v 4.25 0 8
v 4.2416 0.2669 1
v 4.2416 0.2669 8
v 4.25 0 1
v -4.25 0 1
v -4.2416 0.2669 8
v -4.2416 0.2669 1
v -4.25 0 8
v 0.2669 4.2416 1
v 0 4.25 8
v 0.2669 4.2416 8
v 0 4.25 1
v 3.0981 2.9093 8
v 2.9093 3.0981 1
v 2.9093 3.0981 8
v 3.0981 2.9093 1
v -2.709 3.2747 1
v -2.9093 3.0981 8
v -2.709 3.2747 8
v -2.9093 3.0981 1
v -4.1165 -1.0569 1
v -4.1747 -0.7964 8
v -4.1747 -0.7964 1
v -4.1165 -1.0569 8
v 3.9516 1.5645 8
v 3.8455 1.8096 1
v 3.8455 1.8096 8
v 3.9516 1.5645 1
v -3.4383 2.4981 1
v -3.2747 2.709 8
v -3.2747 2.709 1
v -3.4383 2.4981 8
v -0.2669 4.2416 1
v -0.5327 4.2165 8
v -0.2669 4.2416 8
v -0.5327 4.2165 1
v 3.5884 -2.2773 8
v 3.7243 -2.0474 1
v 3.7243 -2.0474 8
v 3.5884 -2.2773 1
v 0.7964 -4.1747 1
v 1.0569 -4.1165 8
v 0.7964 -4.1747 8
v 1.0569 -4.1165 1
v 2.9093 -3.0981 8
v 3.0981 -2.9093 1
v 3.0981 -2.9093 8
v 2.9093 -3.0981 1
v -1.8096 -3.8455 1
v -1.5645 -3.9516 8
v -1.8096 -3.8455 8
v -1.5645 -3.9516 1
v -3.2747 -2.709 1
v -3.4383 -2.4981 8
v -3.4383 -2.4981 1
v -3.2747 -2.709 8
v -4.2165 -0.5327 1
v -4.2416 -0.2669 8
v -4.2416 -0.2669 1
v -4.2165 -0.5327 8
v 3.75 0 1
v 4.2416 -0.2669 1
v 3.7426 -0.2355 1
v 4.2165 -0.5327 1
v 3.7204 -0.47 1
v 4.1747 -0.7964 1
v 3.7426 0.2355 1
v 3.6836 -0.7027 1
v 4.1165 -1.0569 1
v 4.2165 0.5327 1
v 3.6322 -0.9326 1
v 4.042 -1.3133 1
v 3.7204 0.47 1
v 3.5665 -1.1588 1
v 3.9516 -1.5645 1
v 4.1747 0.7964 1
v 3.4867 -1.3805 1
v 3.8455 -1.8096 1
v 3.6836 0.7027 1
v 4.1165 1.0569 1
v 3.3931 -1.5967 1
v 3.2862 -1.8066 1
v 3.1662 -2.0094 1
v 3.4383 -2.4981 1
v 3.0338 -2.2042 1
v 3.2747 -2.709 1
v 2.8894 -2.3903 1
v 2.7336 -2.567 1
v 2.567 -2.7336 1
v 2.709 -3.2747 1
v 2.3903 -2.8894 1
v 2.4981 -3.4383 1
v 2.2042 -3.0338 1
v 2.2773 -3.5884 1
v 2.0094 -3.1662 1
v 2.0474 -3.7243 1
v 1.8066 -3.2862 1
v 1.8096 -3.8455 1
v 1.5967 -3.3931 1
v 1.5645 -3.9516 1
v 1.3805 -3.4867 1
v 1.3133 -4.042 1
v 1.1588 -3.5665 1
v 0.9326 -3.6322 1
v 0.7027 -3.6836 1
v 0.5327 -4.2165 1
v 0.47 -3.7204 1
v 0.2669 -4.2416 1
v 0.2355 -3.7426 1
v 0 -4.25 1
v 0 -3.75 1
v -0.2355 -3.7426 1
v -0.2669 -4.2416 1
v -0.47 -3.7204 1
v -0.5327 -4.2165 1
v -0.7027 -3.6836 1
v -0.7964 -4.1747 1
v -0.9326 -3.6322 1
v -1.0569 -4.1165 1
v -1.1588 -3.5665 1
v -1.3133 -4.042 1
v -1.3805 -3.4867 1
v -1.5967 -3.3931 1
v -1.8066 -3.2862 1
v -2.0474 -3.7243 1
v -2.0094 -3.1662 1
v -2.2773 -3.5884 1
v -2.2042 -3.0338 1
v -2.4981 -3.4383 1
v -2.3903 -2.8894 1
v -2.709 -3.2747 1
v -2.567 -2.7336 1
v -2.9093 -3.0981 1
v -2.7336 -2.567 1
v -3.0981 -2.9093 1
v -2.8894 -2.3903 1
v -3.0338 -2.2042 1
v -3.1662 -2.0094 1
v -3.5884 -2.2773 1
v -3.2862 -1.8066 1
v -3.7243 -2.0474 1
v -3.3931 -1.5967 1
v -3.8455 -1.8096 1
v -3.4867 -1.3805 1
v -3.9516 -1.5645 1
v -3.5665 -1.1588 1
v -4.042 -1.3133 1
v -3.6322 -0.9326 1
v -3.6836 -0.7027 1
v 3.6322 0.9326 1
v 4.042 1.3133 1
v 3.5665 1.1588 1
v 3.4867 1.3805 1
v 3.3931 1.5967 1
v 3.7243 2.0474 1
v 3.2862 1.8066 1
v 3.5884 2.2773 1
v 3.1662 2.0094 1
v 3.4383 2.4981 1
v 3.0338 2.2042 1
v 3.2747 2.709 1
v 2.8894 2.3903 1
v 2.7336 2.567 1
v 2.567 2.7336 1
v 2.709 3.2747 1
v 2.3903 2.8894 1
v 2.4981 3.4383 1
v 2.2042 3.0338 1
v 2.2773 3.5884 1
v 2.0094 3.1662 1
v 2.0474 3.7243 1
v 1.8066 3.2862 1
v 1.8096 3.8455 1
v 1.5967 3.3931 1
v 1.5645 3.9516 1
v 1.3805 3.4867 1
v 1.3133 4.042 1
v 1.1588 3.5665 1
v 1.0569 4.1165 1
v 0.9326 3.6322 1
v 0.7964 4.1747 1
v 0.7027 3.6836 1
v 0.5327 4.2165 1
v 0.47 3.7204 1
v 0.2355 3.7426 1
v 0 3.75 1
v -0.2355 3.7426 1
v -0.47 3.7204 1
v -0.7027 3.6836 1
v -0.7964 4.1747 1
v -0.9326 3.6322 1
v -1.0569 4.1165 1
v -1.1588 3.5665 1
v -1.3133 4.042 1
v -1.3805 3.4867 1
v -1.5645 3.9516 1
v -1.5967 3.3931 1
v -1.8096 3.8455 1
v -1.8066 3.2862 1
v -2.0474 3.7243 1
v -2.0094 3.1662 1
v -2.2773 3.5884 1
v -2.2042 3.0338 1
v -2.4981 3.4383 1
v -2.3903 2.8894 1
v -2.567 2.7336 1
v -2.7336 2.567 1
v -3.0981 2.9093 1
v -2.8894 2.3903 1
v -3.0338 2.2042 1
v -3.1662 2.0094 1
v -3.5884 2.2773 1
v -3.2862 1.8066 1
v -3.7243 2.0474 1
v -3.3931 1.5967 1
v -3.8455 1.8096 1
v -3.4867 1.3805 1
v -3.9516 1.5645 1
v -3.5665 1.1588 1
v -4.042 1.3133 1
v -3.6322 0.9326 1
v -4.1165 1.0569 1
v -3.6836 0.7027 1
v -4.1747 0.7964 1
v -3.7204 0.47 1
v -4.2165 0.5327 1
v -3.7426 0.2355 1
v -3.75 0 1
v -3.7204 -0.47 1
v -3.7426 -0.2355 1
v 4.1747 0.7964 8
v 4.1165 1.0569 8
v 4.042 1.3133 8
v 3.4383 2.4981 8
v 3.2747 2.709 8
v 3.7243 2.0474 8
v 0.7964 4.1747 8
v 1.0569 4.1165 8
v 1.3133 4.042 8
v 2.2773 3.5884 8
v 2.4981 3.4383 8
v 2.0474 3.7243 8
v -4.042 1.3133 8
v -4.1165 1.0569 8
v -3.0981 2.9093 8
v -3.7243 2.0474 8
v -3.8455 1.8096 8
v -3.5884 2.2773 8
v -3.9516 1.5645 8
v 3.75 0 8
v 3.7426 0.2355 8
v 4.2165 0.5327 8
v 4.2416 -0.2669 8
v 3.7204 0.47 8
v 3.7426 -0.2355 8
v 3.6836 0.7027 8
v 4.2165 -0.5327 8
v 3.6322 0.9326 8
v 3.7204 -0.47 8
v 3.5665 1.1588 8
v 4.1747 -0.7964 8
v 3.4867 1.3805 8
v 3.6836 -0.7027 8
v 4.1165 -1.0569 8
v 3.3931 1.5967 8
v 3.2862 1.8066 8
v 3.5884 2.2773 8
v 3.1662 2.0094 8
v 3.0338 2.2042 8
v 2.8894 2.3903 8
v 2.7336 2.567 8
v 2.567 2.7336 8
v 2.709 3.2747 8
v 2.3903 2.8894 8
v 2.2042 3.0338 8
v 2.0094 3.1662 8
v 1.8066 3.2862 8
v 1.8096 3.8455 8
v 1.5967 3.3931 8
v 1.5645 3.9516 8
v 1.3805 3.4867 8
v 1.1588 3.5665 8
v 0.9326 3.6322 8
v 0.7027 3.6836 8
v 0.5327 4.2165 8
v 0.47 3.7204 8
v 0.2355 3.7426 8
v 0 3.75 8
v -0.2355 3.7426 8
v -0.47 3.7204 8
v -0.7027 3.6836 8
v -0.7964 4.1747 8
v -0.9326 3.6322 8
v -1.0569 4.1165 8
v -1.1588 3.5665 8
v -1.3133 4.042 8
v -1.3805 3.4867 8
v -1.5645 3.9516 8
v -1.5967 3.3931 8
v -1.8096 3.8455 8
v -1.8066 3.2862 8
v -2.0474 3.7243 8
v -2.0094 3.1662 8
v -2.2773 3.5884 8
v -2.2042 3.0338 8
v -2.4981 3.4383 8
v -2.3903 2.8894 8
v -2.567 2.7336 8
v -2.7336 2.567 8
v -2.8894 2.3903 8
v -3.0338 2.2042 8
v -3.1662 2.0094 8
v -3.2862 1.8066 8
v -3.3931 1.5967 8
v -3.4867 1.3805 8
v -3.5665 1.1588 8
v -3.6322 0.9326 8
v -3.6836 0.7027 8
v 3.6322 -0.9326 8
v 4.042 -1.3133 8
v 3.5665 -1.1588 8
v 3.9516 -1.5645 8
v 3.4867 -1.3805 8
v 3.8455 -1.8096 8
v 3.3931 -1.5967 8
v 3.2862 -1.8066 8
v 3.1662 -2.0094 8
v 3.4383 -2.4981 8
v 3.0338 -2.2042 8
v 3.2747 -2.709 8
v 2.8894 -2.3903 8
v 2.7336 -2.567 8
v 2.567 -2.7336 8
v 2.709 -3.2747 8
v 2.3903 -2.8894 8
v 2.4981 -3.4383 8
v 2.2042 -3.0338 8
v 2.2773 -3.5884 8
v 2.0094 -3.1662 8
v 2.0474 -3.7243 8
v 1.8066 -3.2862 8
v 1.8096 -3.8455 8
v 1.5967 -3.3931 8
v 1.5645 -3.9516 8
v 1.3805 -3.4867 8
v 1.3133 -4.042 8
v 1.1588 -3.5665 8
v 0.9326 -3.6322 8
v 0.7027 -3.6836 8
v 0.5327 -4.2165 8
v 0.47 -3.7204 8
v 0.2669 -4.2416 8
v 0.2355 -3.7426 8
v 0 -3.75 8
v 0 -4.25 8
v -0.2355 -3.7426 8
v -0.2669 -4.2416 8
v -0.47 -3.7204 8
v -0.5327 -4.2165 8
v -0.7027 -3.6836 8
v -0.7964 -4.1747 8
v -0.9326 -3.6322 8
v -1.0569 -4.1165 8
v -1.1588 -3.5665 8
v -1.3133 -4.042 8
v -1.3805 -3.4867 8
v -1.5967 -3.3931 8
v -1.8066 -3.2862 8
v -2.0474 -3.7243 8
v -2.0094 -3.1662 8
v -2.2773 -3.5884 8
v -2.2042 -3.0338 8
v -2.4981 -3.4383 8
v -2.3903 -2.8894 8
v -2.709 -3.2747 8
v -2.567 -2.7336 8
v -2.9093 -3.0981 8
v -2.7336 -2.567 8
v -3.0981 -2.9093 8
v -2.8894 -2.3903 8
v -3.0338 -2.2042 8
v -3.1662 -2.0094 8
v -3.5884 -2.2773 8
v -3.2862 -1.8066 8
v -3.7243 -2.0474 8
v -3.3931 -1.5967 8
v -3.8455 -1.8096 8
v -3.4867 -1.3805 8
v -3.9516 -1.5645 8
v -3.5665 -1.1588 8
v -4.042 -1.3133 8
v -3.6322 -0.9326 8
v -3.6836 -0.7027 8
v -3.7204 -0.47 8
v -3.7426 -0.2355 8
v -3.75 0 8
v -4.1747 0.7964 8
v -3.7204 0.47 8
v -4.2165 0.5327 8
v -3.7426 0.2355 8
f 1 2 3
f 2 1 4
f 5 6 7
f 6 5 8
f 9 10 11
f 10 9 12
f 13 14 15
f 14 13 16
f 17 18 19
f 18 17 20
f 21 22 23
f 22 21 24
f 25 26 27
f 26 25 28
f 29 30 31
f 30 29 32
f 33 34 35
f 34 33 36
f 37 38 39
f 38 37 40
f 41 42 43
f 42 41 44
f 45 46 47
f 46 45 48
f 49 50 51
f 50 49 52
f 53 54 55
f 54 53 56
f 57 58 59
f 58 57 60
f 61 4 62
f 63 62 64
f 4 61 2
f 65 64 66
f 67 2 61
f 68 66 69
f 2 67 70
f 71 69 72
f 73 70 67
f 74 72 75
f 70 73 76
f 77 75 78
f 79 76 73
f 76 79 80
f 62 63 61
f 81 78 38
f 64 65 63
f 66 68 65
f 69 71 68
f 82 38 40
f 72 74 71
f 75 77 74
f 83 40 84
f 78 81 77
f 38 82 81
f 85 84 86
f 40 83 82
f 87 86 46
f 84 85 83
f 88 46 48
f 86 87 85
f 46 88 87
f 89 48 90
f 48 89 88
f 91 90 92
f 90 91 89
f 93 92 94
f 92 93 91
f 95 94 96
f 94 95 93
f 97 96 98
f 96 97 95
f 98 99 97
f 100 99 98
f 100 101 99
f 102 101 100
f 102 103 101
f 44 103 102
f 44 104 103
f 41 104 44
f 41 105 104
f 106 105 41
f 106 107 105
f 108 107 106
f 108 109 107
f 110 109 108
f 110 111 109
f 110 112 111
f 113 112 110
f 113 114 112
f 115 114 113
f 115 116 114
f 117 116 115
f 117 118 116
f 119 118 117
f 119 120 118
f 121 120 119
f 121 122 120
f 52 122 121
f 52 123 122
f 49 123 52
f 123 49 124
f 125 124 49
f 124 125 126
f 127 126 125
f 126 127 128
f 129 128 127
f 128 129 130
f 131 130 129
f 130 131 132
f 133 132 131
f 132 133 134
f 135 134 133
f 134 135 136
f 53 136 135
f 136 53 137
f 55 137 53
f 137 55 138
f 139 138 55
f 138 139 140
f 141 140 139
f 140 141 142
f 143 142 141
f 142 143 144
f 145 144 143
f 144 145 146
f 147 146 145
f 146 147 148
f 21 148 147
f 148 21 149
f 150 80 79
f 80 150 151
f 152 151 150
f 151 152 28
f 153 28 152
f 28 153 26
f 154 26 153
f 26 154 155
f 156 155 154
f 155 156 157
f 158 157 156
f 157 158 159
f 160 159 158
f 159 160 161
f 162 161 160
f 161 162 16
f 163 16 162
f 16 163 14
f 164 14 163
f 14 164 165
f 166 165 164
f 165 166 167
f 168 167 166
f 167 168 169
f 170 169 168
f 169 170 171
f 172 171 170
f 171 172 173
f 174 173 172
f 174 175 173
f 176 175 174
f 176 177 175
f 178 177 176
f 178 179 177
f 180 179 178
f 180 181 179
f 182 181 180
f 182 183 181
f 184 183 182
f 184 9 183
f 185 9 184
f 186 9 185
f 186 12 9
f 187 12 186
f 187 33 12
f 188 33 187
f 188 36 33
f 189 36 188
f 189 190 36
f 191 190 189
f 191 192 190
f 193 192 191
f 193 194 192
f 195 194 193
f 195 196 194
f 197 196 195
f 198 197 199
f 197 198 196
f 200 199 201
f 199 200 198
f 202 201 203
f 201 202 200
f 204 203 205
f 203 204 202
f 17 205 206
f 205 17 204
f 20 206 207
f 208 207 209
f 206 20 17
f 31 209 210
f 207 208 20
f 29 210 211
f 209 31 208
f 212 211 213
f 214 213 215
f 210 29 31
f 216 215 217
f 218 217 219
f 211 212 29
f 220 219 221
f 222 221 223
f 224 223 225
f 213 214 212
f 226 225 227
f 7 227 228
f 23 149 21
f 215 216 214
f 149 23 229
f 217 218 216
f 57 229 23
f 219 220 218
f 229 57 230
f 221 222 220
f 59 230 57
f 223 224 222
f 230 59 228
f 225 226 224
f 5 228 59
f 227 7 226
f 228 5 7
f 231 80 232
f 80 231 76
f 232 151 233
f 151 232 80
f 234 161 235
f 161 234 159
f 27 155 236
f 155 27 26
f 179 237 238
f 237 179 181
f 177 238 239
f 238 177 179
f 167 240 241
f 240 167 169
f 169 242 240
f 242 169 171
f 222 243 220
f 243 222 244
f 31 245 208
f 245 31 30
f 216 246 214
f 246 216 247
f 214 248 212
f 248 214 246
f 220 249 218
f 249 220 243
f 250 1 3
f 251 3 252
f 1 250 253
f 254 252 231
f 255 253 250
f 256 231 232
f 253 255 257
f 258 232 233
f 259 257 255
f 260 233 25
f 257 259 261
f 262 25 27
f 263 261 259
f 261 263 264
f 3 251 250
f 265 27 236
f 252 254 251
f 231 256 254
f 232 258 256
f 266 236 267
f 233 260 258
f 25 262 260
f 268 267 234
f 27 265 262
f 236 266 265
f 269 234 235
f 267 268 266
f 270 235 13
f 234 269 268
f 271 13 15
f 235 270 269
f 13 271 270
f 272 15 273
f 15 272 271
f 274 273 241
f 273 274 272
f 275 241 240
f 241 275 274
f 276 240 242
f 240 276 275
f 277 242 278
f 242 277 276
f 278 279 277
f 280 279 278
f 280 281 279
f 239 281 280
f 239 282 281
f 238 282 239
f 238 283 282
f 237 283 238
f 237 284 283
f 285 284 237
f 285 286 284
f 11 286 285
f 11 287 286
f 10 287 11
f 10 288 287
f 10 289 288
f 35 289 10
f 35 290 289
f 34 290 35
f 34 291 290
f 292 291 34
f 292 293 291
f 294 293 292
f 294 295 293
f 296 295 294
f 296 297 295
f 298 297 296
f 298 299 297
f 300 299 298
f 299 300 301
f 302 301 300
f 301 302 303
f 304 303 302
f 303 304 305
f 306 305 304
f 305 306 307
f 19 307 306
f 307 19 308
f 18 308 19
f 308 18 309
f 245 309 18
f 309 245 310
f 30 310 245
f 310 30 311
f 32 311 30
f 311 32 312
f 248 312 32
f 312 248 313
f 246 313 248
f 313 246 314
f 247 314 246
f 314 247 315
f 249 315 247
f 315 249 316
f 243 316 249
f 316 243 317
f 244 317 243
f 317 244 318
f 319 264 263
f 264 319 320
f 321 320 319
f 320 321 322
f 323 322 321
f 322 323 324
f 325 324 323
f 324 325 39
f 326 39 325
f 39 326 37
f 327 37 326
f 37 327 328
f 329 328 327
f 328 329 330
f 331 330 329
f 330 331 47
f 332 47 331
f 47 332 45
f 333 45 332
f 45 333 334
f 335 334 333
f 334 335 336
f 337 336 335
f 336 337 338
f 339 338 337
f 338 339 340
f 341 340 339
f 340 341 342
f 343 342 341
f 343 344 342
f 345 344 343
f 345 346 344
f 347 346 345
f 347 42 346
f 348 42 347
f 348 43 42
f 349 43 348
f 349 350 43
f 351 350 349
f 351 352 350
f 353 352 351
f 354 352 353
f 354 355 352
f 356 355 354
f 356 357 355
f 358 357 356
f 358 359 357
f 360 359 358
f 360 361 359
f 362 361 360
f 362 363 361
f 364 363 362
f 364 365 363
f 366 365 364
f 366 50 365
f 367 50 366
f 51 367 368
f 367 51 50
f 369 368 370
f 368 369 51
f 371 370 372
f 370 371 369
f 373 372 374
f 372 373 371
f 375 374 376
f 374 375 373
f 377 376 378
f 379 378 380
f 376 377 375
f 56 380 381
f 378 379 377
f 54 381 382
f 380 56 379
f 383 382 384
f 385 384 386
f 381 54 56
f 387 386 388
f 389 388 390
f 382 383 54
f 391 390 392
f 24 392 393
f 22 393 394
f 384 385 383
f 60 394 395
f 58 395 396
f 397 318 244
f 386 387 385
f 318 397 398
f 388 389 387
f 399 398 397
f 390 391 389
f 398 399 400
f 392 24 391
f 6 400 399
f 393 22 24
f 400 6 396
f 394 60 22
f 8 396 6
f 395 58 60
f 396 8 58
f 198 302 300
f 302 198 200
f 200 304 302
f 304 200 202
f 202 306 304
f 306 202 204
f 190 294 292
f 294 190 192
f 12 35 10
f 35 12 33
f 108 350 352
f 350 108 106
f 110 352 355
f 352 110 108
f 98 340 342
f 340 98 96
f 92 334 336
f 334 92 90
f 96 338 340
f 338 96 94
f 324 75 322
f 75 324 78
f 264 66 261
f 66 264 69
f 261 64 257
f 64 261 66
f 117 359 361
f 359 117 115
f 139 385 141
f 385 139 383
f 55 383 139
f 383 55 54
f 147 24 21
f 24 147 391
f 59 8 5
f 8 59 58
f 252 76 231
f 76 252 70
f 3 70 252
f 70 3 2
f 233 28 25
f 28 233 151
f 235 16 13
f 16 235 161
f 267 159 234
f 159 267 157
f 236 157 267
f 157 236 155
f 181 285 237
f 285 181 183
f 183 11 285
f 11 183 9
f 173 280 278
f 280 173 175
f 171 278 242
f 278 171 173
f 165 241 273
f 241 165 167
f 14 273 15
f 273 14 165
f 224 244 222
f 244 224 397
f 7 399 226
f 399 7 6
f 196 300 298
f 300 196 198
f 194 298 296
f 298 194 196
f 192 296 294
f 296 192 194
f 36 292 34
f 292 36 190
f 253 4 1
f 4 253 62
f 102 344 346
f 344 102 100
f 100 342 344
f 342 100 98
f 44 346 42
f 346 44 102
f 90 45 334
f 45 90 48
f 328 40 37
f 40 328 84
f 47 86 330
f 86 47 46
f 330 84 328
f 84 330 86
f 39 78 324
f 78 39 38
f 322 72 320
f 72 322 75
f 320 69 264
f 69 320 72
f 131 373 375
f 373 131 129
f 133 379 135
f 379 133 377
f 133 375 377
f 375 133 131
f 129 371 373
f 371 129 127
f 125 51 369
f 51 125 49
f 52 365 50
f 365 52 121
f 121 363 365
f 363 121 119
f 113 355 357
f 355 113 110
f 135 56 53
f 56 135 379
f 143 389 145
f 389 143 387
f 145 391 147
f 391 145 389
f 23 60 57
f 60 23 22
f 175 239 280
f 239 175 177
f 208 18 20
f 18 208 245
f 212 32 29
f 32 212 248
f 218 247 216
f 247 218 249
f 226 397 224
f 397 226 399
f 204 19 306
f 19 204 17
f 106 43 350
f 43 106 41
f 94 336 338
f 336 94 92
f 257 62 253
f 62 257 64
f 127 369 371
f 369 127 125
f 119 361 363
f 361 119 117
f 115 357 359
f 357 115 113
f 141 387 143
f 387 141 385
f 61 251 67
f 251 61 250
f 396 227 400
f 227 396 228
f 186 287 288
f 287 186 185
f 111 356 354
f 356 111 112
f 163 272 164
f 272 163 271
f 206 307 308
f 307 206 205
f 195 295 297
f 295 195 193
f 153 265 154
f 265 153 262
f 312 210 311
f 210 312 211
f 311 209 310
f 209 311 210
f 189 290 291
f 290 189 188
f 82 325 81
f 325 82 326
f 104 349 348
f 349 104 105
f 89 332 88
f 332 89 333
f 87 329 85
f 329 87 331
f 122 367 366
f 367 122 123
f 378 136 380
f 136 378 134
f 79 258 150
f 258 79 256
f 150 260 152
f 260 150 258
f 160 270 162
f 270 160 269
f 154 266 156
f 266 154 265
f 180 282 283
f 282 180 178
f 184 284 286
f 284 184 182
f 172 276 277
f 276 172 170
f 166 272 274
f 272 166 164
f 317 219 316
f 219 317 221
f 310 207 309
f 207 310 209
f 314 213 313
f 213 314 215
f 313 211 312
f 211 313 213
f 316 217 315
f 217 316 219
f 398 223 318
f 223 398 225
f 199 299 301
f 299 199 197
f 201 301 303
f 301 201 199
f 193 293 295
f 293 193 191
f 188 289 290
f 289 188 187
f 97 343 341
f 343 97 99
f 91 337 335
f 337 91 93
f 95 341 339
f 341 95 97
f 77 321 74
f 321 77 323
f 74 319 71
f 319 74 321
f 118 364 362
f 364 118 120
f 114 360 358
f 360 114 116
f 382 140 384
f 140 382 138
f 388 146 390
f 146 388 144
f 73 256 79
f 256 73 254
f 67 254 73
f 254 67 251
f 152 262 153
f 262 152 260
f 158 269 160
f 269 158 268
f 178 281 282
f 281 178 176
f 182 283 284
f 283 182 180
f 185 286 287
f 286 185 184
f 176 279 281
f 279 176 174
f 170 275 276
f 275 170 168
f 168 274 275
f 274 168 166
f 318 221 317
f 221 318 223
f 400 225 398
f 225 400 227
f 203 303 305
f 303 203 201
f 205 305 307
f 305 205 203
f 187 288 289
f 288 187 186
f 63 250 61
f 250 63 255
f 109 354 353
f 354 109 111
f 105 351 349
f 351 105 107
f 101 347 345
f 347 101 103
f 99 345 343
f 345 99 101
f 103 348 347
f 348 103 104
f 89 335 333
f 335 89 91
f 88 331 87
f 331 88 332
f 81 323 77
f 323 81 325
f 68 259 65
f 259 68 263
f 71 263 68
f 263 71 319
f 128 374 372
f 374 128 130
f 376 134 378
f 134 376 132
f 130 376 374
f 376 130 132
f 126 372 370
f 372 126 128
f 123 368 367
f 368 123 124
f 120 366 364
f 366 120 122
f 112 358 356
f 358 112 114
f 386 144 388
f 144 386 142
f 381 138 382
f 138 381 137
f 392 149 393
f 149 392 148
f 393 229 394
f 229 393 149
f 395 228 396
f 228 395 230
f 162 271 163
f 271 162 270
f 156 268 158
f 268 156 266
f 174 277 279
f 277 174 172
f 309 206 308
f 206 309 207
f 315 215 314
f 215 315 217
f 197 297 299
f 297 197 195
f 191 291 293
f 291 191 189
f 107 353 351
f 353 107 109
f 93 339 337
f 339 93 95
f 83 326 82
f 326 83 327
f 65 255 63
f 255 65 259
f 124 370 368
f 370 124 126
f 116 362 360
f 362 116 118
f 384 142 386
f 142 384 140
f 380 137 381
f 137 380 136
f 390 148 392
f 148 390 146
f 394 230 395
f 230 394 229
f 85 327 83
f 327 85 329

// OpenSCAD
$fn=100;

difference() {
    translate([0, 0, 1]) cylinder(d=8.5, h=7);
    cylinder(d=7.5, h=9);
}
